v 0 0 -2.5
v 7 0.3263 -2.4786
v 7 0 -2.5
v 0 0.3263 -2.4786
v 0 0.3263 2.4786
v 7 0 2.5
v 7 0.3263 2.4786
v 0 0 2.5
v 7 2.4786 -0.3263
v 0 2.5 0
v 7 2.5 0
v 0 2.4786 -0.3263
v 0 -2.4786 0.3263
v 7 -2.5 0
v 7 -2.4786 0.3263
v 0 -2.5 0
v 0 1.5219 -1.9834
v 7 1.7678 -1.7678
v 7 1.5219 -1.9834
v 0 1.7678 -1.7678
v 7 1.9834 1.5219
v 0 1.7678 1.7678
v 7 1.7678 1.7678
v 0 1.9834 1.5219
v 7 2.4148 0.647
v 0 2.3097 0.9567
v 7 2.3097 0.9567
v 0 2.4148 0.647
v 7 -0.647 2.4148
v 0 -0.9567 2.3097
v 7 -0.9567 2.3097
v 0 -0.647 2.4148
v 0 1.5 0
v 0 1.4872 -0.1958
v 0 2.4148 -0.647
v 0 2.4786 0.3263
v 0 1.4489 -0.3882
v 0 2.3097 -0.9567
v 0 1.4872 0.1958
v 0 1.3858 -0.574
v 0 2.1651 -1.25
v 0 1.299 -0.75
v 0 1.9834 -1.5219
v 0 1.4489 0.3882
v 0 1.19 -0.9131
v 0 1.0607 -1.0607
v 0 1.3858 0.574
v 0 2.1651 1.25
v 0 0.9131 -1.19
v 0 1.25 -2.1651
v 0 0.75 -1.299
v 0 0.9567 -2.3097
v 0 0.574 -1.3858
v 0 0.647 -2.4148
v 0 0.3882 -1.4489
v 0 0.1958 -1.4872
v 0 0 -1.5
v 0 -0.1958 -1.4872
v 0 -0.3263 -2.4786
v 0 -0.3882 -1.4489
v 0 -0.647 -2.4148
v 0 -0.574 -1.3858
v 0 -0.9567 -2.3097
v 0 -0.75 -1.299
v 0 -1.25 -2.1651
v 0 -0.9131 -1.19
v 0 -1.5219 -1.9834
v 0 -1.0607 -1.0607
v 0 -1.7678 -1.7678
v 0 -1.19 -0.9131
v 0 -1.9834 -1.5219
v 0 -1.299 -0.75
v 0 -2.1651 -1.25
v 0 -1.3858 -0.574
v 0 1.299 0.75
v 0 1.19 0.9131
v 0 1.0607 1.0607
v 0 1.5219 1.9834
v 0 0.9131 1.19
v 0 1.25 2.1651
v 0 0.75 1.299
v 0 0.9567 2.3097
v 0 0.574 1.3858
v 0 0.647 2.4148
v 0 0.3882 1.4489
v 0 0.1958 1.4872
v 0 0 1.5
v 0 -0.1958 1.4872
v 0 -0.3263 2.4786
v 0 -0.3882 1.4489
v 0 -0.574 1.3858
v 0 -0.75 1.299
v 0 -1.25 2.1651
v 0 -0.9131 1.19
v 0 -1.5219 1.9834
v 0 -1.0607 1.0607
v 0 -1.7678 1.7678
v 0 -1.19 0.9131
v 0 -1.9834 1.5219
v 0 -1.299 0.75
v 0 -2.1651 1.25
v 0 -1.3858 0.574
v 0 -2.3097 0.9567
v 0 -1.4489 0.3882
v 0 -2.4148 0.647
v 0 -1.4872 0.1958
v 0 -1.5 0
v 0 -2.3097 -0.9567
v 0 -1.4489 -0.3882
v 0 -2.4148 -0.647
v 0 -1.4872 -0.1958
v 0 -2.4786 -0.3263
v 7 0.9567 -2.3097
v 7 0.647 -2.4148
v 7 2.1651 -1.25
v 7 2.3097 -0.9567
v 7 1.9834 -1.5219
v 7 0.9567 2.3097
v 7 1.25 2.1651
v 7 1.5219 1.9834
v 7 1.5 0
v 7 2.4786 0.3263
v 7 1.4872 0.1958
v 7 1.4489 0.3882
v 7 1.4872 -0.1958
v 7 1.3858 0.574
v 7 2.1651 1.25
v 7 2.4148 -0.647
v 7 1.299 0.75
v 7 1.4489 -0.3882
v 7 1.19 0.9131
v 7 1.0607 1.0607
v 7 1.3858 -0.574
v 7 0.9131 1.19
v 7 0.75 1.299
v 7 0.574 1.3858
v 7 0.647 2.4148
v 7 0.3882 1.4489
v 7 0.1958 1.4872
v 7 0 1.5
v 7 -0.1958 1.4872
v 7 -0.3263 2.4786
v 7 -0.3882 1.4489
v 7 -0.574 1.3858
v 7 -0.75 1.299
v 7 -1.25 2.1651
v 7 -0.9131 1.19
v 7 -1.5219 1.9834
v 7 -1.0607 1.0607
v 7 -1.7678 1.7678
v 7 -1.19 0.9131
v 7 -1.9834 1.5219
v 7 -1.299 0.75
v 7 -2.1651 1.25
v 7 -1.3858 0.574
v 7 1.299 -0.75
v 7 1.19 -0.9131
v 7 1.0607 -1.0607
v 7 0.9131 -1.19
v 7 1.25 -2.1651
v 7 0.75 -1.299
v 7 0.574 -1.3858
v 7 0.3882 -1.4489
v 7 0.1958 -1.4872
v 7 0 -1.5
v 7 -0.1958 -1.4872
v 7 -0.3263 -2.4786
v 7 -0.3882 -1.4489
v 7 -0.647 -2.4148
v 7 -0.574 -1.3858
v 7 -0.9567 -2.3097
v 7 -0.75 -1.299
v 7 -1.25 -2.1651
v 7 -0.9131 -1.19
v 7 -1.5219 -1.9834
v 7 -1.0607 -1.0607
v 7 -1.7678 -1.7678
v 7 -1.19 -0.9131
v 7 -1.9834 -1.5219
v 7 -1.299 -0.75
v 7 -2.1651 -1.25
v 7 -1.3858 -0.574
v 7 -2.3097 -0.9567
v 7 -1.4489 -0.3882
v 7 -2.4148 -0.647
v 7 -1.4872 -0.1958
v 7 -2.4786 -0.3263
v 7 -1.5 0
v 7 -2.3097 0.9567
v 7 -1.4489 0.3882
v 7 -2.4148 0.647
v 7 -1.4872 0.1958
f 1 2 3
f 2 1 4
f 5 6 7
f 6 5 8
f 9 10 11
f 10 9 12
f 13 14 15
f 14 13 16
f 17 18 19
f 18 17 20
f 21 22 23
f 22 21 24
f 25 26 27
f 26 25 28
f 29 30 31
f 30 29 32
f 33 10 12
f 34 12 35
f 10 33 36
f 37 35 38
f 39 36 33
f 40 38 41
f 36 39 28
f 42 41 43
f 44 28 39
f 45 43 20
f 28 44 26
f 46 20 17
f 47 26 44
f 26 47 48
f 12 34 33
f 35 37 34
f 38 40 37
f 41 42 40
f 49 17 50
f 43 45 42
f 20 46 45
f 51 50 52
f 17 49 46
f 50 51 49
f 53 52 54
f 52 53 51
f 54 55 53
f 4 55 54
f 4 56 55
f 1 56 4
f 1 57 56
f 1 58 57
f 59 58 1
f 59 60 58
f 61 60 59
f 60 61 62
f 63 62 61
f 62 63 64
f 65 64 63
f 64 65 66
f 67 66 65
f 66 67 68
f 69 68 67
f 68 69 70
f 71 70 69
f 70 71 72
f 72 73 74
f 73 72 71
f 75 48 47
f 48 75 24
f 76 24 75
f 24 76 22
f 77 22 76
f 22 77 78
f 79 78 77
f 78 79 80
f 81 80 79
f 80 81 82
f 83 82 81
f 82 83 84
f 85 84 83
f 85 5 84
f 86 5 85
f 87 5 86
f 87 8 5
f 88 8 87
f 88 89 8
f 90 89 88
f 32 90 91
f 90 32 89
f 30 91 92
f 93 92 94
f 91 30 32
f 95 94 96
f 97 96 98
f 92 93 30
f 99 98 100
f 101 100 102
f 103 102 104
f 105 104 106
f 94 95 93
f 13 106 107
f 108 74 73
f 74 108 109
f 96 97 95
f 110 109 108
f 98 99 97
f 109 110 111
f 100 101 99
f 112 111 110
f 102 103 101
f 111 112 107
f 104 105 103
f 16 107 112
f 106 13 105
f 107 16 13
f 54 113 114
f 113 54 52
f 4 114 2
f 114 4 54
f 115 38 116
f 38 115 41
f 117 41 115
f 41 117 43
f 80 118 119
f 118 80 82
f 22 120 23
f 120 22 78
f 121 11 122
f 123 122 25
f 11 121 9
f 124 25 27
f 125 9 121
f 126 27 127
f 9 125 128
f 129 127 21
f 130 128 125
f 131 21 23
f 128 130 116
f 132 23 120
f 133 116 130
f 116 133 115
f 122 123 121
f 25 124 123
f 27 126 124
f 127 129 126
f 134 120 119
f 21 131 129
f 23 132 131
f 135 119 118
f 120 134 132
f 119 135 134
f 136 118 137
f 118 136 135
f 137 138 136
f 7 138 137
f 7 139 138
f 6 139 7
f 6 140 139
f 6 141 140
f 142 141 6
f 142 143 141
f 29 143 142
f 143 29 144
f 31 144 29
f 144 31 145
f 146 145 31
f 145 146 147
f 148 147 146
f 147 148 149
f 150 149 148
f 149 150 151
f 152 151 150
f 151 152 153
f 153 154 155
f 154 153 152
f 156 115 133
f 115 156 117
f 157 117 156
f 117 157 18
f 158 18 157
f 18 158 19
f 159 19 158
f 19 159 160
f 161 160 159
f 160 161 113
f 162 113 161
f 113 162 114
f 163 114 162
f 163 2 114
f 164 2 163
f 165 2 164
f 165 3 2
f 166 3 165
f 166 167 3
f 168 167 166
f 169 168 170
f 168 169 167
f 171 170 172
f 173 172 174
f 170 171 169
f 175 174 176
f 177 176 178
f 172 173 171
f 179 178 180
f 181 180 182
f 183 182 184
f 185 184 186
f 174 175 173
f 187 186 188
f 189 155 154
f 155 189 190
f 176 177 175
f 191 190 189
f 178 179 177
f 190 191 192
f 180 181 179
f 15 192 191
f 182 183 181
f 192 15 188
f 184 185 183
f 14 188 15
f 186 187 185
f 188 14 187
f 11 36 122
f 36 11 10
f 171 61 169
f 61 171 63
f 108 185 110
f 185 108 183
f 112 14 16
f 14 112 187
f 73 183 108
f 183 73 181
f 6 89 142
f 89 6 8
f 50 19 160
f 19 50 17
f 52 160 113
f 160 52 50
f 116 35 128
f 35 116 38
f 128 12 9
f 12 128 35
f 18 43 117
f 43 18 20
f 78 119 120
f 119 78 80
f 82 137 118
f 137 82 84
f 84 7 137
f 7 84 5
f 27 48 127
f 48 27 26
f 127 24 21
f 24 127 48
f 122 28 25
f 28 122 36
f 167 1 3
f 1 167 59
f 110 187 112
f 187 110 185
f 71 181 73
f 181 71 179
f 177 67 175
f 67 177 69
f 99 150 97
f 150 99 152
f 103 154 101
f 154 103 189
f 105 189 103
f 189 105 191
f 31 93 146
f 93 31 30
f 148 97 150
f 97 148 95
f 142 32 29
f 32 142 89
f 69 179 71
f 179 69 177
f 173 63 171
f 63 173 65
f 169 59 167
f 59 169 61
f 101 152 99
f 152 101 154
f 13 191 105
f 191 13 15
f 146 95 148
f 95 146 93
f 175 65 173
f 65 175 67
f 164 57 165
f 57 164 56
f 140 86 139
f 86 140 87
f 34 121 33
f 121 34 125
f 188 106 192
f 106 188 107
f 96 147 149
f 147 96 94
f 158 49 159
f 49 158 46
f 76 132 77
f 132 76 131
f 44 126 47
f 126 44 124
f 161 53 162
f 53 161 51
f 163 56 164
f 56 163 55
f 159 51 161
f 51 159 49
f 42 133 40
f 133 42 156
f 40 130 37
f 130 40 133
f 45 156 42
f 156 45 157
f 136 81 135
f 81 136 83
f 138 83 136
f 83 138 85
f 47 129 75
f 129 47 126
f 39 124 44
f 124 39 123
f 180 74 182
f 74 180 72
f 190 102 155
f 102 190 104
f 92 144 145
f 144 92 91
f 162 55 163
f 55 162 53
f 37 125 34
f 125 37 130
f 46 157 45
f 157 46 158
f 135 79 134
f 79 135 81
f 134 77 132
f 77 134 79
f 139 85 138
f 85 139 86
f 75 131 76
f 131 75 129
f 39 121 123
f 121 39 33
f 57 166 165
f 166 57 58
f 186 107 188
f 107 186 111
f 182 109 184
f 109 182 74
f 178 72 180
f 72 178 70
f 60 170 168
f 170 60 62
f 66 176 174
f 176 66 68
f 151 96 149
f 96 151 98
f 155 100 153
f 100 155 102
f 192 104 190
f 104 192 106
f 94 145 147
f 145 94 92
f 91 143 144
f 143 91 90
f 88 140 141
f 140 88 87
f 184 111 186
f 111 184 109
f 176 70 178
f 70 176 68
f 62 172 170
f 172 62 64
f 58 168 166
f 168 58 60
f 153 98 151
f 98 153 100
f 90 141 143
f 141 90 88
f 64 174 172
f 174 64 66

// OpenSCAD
// file: ../../conf/constants.scad
/**********************************************************************************************************************
 **
 ** conf/constants.scad
 **
 ** This file contains constants and aliases used for the part size definitions.
 **
 **********************************************************************************************************************/

/**
 * The alias names for the rails.
 * A is the "front left" rail, B the "front right" rail, C the back rail.
 * These constants are also used for the sides of the frame and the effector; in this case, side A is the one 
 * opposing rail A.
 */
A = 0;
B = 1;
C = 2;

/**
 * Aliases for metric screw/nut sizes.
 */
M2 = 2;
M3 = 3;
M4 = 4;
M5 = 5;
M8 = 8;

/** 
 * Aliases for NEMA stepper motors.
 */
NEMA14 = 14;
NEMA17 = 17;
NEMA23 = 23;
// main file
/**********************************************************************************************************************
 **
 ** parts/vitamins/insert_M3x7.scad
 **
 ** This file renders a threaded insert of the dimensions specified by the file name.
 **
 **********************************************************************************************************************/

include <../../conf/part_sizes.scad>

_height = 7.0;
$fn = 48;
rotate([0, 90, 0]) {
	difference() {
		cylinder(d = insert_outer_diameter_m3(), h = _height);
		cylinder(d = insert_inner_diameter_m3(), h = _height);
	}
}
